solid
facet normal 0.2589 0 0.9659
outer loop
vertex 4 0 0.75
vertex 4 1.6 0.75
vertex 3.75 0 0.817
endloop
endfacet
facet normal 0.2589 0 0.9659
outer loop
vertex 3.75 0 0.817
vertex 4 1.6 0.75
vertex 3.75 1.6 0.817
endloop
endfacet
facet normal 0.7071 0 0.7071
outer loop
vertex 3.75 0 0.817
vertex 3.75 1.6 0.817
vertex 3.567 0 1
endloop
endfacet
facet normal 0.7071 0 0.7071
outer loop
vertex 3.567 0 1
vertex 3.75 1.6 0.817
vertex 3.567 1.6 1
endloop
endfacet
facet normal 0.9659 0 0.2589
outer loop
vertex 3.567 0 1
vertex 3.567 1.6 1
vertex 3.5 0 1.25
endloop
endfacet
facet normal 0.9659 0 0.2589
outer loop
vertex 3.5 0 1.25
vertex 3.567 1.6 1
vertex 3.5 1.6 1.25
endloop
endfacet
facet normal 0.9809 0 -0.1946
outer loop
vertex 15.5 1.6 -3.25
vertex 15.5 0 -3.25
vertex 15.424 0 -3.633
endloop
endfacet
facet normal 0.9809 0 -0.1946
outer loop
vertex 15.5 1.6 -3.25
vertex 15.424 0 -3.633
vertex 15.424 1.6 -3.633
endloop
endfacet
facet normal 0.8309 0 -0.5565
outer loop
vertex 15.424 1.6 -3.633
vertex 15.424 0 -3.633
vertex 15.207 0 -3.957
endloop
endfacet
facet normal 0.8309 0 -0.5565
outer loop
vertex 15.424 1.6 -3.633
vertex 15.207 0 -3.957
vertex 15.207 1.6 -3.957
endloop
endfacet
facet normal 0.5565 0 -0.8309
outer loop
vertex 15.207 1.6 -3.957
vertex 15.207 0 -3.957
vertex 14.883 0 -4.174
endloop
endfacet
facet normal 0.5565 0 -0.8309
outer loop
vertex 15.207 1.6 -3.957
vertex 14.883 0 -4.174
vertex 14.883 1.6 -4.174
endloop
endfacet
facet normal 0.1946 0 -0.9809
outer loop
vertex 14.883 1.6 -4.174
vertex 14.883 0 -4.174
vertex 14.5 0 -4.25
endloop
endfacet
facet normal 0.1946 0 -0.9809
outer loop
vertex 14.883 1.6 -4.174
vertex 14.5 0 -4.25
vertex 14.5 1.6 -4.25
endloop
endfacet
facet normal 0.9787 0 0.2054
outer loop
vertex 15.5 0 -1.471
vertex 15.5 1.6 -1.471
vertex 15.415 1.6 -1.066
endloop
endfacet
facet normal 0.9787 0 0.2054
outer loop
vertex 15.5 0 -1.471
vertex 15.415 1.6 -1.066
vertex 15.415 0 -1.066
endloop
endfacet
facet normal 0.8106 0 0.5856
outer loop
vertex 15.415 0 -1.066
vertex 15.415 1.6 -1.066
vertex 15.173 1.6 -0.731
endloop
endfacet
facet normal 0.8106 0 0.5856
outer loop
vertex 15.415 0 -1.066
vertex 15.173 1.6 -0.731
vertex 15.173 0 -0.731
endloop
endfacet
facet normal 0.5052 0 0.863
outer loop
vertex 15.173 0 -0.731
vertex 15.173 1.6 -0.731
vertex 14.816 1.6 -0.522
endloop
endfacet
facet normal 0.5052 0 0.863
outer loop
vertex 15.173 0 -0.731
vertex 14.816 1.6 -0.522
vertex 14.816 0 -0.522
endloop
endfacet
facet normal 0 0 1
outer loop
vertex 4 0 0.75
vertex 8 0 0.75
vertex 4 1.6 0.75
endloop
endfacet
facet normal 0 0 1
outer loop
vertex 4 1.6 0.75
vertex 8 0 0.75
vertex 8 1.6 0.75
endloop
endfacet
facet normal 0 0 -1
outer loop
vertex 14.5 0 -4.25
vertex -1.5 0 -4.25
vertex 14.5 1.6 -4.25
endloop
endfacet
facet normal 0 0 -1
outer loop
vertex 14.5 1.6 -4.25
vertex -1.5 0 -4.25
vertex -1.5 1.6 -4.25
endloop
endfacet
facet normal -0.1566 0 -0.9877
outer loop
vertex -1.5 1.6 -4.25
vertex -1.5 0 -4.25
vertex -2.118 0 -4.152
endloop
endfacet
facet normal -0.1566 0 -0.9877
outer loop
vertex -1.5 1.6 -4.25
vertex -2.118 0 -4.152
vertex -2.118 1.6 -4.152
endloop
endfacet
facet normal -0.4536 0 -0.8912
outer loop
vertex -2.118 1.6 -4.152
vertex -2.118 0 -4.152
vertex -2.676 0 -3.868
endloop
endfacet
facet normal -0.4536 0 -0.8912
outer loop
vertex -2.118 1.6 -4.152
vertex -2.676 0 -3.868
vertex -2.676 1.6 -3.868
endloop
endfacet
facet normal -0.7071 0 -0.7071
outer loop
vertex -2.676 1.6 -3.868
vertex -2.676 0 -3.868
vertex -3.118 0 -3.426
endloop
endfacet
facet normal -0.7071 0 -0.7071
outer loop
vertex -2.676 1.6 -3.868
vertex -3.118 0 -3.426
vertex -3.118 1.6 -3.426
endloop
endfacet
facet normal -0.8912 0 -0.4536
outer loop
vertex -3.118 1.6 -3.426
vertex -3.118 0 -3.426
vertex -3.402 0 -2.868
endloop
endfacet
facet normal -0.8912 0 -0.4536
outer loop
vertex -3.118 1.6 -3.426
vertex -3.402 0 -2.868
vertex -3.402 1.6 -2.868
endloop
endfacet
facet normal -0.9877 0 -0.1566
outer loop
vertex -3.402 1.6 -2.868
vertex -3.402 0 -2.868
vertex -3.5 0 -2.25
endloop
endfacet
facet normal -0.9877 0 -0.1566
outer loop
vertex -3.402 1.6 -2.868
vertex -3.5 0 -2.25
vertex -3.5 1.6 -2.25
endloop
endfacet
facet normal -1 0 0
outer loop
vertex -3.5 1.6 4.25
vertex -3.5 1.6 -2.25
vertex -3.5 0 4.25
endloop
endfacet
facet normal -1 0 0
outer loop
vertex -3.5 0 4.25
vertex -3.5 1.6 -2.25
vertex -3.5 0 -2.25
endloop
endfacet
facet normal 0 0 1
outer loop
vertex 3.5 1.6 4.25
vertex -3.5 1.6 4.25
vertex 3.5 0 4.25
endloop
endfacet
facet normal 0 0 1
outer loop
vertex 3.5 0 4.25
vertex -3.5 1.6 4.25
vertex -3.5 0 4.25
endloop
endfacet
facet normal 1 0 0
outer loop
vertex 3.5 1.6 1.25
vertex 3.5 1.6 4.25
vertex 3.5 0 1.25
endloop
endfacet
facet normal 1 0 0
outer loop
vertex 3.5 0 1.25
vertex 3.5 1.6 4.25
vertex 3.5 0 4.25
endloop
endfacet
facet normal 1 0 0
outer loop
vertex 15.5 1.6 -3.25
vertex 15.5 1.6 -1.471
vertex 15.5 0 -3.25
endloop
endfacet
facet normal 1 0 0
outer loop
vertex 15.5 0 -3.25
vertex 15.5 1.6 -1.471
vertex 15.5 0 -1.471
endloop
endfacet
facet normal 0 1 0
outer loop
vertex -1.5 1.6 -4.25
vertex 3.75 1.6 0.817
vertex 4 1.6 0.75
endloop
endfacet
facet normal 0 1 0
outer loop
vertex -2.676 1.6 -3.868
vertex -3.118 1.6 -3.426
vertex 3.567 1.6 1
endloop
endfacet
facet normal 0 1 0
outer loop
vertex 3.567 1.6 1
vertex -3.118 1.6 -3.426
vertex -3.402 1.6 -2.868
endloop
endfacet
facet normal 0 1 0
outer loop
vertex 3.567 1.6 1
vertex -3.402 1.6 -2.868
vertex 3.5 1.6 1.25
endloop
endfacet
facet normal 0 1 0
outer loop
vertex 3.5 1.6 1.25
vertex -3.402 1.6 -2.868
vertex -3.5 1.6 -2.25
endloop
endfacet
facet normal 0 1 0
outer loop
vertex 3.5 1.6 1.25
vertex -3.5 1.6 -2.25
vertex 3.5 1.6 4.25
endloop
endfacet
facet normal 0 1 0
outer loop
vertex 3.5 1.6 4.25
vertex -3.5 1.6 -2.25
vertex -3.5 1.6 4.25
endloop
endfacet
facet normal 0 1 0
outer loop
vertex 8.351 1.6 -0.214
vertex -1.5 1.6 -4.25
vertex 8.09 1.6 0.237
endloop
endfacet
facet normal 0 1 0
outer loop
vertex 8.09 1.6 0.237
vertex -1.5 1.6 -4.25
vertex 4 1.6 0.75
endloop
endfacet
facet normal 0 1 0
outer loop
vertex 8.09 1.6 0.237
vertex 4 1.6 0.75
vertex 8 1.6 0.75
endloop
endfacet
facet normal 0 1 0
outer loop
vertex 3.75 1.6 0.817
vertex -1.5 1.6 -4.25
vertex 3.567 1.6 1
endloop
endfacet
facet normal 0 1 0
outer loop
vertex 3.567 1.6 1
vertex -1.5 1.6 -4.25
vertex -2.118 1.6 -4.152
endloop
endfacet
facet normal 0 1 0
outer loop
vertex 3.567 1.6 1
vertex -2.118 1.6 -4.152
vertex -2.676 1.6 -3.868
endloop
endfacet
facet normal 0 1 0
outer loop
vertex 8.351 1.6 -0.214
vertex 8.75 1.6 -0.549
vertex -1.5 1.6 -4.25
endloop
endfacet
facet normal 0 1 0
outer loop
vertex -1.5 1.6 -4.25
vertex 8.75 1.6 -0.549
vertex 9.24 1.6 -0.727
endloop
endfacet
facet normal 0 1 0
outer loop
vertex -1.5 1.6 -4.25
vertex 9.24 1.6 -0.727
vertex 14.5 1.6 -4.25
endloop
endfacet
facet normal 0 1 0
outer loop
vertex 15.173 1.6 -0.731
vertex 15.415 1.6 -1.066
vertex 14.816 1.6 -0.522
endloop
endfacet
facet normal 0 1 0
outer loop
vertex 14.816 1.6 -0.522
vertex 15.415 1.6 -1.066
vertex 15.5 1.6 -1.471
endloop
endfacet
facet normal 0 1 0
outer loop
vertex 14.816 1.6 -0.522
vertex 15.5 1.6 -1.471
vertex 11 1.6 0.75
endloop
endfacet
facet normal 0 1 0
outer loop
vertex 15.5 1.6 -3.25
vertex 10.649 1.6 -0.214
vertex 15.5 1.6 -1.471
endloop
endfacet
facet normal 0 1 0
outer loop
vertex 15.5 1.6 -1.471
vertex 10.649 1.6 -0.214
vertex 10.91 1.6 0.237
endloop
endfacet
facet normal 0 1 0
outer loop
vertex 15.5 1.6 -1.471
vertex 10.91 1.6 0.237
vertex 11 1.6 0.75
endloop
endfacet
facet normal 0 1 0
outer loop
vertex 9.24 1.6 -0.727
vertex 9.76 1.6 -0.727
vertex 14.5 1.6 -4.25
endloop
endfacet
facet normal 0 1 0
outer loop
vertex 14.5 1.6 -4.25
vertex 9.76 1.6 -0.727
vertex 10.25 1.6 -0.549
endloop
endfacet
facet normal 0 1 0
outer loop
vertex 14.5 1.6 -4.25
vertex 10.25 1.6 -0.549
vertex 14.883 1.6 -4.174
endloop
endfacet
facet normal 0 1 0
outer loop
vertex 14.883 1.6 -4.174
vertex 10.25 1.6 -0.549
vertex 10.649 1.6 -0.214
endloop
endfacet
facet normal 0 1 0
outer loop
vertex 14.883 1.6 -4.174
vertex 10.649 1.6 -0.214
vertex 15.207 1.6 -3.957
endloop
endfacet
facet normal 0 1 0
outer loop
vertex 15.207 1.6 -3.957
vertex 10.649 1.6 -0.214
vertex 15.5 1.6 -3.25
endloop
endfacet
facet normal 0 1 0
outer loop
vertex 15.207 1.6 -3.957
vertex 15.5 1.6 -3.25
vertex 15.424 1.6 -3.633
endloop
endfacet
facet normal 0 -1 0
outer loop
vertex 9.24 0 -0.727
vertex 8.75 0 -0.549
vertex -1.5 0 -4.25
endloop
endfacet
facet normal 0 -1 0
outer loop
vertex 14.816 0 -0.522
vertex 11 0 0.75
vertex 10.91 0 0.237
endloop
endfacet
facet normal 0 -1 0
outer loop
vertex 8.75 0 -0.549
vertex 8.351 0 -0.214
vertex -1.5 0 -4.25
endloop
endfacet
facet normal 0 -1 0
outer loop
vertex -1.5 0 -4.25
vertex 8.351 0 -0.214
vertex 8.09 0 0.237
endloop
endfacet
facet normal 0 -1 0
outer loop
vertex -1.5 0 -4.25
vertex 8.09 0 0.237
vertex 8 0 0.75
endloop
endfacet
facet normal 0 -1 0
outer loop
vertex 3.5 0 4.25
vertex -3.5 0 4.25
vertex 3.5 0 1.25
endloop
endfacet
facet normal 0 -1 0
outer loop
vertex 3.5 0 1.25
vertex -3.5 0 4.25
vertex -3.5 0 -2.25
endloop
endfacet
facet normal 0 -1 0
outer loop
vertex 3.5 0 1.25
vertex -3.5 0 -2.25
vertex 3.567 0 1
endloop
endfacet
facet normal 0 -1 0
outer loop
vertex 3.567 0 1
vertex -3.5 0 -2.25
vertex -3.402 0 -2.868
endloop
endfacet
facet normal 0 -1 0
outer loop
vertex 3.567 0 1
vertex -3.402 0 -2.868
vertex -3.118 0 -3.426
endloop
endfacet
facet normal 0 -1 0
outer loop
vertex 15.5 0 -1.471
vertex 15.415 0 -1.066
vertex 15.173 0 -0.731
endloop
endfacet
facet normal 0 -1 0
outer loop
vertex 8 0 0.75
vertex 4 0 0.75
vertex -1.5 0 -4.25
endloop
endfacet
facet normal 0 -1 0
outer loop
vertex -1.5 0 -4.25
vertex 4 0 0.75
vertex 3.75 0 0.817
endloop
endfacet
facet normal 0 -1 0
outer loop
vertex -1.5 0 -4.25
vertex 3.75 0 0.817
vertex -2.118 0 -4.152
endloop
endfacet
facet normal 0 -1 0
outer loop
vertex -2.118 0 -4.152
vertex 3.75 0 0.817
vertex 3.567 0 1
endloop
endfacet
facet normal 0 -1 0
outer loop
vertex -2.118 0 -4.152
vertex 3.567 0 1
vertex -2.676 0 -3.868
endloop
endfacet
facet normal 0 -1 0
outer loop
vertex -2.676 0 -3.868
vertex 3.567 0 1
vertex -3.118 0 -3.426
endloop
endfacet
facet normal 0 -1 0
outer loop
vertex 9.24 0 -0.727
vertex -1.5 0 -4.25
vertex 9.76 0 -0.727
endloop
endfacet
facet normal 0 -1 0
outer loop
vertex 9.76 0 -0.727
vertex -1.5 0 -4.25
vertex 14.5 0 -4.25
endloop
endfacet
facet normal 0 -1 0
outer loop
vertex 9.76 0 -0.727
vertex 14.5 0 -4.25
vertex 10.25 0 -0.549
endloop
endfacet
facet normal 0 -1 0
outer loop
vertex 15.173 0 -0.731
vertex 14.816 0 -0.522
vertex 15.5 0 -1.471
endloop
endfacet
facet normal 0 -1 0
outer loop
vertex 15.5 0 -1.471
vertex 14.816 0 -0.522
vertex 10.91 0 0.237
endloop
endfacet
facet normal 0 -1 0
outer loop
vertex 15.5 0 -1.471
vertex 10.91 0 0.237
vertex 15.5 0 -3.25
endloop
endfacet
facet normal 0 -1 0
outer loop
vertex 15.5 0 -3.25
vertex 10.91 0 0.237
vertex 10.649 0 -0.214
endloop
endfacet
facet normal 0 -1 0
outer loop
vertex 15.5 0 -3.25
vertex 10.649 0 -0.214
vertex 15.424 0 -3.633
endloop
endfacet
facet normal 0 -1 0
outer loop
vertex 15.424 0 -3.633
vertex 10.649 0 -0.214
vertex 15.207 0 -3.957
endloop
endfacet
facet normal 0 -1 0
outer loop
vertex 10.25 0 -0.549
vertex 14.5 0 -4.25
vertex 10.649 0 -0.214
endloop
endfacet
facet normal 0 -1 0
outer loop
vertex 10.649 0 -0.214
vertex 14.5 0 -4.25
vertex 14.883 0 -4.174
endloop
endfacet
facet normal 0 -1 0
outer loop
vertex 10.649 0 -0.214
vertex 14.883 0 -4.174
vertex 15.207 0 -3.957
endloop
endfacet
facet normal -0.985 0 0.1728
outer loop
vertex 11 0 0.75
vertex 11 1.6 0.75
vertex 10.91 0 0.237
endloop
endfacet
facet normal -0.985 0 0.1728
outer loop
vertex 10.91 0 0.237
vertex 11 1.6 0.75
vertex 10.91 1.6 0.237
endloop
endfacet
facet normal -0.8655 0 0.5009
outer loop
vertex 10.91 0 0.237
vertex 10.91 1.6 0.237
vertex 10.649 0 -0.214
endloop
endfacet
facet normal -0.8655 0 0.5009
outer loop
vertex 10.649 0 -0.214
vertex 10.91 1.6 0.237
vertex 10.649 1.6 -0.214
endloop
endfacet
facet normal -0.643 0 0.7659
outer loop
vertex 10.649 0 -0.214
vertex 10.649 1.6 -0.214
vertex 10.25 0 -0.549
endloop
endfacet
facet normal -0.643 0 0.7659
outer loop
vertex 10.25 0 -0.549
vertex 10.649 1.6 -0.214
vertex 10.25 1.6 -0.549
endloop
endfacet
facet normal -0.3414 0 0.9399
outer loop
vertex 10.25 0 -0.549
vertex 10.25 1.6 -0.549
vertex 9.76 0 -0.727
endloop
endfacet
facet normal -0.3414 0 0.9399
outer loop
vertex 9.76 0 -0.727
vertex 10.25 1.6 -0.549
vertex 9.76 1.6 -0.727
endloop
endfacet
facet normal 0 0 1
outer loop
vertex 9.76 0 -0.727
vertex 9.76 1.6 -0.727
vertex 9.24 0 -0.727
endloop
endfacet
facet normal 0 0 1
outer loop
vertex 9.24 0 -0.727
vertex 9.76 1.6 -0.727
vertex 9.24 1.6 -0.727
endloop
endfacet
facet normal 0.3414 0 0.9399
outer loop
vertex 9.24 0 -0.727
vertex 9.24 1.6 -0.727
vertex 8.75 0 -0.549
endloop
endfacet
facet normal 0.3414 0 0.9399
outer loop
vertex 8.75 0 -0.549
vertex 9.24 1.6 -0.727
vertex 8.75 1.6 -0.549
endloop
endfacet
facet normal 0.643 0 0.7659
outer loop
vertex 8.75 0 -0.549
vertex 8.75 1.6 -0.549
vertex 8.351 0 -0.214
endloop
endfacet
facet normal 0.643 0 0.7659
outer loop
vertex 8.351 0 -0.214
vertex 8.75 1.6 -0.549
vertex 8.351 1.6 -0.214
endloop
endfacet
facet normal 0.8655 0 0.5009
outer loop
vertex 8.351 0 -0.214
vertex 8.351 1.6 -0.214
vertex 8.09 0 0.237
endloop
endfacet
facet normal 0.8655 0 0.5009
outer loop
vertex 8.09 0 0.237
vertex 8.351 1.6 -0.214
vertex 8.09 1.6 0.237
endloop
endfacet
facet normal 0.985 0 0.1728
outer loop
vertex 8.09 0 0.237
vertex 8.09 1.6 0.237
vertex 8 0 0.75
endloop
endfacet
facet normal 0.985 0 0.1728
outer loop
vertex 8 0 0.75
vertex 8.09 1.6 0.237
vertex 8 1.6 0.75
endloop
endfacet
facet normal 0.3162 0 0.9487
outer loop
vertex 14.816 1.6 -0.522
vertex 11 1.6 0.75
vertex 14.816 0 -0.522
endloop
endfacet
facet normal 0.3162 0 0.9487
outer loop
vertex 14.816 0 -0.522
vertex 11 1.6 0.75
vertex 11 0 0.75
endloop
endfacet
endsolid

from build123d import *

# Parameters (mm, degrees)
ESBO_O2_W                = 12
ESBO_O2_H                = 5
RESSALTO_EXTRUS_O1_DEPTH = 1.6
ESBO_O3_R                = 1.5
CORTE_EXTRUS_O1_DEPTH    = 1.6
CORTE_EXTRUS_O2_DEPTH    = 1.6
FILETE1_R                = 1
FILETE2_R                = 1
FILETE6_R                = 0.5


with BuildPart() as part:
    # Esboço2 → Ressalto-extrusão1 (new body)
    with BuildSketch(Plane(origin=(0, 0, 0), x_dir=(1, 0, 0), z_dir=(0, 1, 0))):
        with BuildLine():
            Line((-3.5, 2.25), (-3.5, -4.25))
            Line((-3.5, -4.25), (3.5, -4.25))
            Line((3.5, -4.25), (3.5, -0.75))
            Line((3.5, -0.75), (3.5, 4.25))
            Line((3.5, 4.25), (-1.5, 4.25))
            ThreePointArc((-1.5, 4.25), (-2.914213562, 3.664213562), (-3.5, 2.25))
        make_face()
        with Locations((9.5, 1.75)):
            Rectangle(ESBO_O2_W, ESBO_O2_H)
    extrude(amount=RESSALTO_EXTRUS_O1_DEPTH)

    # Esboço3 → Corte-extrusão1 (cut)
    with BuildSketch(Plane(origin=(0, 1.6, 0), x_dir=(1, 0, 0), z_dir=(0, 1, 0))):
        with Locations((9.5, -0.75)):
            Circle(ESBO_O3_R)
    extrude(amount=-CORTE_EXTRUS_O1_DEPTH, mode=Mode.SUBTRACT)

    # Esboço4 → Corte-extrusão2 (cut)
    with BuildSketch(Plane(origin=(0, 1.6, 0), x_dir=(1, 0, 0), z_dir=(0, 1, 0))):
        Polygon((11, -0.75), (15.5, 0.75), (15.5, -0.75), align=None)
    extrude(amount=-CORTE_EXTRUS_O2_DEPTH, mode=Mode.SUBTRACT)

    # Filete1
    filete1_edges = [part.edges().sort_by_distance(p)[0] for p in [
        (15.5, 0.8, -0.75),
    ]]
    fillet(filete1_edges, radius=FILETE1_R)

    # Filete2
    filete2_edges = [part.edges().sort_by_distance(p)[0] for p in [
        (15.5, 0.8, -4.25),
    ]]
    fillet(filete2_edges, radius=FILETE2_R)

    # Filete6
    filete6_edges = [part.edges().sort_by_distance(p)[0] for p in [
        (3.5, 0.8, 0.75),
    ]]
    fillet(filete6_edges, radius=FILETE6_R)


solid = part.part
